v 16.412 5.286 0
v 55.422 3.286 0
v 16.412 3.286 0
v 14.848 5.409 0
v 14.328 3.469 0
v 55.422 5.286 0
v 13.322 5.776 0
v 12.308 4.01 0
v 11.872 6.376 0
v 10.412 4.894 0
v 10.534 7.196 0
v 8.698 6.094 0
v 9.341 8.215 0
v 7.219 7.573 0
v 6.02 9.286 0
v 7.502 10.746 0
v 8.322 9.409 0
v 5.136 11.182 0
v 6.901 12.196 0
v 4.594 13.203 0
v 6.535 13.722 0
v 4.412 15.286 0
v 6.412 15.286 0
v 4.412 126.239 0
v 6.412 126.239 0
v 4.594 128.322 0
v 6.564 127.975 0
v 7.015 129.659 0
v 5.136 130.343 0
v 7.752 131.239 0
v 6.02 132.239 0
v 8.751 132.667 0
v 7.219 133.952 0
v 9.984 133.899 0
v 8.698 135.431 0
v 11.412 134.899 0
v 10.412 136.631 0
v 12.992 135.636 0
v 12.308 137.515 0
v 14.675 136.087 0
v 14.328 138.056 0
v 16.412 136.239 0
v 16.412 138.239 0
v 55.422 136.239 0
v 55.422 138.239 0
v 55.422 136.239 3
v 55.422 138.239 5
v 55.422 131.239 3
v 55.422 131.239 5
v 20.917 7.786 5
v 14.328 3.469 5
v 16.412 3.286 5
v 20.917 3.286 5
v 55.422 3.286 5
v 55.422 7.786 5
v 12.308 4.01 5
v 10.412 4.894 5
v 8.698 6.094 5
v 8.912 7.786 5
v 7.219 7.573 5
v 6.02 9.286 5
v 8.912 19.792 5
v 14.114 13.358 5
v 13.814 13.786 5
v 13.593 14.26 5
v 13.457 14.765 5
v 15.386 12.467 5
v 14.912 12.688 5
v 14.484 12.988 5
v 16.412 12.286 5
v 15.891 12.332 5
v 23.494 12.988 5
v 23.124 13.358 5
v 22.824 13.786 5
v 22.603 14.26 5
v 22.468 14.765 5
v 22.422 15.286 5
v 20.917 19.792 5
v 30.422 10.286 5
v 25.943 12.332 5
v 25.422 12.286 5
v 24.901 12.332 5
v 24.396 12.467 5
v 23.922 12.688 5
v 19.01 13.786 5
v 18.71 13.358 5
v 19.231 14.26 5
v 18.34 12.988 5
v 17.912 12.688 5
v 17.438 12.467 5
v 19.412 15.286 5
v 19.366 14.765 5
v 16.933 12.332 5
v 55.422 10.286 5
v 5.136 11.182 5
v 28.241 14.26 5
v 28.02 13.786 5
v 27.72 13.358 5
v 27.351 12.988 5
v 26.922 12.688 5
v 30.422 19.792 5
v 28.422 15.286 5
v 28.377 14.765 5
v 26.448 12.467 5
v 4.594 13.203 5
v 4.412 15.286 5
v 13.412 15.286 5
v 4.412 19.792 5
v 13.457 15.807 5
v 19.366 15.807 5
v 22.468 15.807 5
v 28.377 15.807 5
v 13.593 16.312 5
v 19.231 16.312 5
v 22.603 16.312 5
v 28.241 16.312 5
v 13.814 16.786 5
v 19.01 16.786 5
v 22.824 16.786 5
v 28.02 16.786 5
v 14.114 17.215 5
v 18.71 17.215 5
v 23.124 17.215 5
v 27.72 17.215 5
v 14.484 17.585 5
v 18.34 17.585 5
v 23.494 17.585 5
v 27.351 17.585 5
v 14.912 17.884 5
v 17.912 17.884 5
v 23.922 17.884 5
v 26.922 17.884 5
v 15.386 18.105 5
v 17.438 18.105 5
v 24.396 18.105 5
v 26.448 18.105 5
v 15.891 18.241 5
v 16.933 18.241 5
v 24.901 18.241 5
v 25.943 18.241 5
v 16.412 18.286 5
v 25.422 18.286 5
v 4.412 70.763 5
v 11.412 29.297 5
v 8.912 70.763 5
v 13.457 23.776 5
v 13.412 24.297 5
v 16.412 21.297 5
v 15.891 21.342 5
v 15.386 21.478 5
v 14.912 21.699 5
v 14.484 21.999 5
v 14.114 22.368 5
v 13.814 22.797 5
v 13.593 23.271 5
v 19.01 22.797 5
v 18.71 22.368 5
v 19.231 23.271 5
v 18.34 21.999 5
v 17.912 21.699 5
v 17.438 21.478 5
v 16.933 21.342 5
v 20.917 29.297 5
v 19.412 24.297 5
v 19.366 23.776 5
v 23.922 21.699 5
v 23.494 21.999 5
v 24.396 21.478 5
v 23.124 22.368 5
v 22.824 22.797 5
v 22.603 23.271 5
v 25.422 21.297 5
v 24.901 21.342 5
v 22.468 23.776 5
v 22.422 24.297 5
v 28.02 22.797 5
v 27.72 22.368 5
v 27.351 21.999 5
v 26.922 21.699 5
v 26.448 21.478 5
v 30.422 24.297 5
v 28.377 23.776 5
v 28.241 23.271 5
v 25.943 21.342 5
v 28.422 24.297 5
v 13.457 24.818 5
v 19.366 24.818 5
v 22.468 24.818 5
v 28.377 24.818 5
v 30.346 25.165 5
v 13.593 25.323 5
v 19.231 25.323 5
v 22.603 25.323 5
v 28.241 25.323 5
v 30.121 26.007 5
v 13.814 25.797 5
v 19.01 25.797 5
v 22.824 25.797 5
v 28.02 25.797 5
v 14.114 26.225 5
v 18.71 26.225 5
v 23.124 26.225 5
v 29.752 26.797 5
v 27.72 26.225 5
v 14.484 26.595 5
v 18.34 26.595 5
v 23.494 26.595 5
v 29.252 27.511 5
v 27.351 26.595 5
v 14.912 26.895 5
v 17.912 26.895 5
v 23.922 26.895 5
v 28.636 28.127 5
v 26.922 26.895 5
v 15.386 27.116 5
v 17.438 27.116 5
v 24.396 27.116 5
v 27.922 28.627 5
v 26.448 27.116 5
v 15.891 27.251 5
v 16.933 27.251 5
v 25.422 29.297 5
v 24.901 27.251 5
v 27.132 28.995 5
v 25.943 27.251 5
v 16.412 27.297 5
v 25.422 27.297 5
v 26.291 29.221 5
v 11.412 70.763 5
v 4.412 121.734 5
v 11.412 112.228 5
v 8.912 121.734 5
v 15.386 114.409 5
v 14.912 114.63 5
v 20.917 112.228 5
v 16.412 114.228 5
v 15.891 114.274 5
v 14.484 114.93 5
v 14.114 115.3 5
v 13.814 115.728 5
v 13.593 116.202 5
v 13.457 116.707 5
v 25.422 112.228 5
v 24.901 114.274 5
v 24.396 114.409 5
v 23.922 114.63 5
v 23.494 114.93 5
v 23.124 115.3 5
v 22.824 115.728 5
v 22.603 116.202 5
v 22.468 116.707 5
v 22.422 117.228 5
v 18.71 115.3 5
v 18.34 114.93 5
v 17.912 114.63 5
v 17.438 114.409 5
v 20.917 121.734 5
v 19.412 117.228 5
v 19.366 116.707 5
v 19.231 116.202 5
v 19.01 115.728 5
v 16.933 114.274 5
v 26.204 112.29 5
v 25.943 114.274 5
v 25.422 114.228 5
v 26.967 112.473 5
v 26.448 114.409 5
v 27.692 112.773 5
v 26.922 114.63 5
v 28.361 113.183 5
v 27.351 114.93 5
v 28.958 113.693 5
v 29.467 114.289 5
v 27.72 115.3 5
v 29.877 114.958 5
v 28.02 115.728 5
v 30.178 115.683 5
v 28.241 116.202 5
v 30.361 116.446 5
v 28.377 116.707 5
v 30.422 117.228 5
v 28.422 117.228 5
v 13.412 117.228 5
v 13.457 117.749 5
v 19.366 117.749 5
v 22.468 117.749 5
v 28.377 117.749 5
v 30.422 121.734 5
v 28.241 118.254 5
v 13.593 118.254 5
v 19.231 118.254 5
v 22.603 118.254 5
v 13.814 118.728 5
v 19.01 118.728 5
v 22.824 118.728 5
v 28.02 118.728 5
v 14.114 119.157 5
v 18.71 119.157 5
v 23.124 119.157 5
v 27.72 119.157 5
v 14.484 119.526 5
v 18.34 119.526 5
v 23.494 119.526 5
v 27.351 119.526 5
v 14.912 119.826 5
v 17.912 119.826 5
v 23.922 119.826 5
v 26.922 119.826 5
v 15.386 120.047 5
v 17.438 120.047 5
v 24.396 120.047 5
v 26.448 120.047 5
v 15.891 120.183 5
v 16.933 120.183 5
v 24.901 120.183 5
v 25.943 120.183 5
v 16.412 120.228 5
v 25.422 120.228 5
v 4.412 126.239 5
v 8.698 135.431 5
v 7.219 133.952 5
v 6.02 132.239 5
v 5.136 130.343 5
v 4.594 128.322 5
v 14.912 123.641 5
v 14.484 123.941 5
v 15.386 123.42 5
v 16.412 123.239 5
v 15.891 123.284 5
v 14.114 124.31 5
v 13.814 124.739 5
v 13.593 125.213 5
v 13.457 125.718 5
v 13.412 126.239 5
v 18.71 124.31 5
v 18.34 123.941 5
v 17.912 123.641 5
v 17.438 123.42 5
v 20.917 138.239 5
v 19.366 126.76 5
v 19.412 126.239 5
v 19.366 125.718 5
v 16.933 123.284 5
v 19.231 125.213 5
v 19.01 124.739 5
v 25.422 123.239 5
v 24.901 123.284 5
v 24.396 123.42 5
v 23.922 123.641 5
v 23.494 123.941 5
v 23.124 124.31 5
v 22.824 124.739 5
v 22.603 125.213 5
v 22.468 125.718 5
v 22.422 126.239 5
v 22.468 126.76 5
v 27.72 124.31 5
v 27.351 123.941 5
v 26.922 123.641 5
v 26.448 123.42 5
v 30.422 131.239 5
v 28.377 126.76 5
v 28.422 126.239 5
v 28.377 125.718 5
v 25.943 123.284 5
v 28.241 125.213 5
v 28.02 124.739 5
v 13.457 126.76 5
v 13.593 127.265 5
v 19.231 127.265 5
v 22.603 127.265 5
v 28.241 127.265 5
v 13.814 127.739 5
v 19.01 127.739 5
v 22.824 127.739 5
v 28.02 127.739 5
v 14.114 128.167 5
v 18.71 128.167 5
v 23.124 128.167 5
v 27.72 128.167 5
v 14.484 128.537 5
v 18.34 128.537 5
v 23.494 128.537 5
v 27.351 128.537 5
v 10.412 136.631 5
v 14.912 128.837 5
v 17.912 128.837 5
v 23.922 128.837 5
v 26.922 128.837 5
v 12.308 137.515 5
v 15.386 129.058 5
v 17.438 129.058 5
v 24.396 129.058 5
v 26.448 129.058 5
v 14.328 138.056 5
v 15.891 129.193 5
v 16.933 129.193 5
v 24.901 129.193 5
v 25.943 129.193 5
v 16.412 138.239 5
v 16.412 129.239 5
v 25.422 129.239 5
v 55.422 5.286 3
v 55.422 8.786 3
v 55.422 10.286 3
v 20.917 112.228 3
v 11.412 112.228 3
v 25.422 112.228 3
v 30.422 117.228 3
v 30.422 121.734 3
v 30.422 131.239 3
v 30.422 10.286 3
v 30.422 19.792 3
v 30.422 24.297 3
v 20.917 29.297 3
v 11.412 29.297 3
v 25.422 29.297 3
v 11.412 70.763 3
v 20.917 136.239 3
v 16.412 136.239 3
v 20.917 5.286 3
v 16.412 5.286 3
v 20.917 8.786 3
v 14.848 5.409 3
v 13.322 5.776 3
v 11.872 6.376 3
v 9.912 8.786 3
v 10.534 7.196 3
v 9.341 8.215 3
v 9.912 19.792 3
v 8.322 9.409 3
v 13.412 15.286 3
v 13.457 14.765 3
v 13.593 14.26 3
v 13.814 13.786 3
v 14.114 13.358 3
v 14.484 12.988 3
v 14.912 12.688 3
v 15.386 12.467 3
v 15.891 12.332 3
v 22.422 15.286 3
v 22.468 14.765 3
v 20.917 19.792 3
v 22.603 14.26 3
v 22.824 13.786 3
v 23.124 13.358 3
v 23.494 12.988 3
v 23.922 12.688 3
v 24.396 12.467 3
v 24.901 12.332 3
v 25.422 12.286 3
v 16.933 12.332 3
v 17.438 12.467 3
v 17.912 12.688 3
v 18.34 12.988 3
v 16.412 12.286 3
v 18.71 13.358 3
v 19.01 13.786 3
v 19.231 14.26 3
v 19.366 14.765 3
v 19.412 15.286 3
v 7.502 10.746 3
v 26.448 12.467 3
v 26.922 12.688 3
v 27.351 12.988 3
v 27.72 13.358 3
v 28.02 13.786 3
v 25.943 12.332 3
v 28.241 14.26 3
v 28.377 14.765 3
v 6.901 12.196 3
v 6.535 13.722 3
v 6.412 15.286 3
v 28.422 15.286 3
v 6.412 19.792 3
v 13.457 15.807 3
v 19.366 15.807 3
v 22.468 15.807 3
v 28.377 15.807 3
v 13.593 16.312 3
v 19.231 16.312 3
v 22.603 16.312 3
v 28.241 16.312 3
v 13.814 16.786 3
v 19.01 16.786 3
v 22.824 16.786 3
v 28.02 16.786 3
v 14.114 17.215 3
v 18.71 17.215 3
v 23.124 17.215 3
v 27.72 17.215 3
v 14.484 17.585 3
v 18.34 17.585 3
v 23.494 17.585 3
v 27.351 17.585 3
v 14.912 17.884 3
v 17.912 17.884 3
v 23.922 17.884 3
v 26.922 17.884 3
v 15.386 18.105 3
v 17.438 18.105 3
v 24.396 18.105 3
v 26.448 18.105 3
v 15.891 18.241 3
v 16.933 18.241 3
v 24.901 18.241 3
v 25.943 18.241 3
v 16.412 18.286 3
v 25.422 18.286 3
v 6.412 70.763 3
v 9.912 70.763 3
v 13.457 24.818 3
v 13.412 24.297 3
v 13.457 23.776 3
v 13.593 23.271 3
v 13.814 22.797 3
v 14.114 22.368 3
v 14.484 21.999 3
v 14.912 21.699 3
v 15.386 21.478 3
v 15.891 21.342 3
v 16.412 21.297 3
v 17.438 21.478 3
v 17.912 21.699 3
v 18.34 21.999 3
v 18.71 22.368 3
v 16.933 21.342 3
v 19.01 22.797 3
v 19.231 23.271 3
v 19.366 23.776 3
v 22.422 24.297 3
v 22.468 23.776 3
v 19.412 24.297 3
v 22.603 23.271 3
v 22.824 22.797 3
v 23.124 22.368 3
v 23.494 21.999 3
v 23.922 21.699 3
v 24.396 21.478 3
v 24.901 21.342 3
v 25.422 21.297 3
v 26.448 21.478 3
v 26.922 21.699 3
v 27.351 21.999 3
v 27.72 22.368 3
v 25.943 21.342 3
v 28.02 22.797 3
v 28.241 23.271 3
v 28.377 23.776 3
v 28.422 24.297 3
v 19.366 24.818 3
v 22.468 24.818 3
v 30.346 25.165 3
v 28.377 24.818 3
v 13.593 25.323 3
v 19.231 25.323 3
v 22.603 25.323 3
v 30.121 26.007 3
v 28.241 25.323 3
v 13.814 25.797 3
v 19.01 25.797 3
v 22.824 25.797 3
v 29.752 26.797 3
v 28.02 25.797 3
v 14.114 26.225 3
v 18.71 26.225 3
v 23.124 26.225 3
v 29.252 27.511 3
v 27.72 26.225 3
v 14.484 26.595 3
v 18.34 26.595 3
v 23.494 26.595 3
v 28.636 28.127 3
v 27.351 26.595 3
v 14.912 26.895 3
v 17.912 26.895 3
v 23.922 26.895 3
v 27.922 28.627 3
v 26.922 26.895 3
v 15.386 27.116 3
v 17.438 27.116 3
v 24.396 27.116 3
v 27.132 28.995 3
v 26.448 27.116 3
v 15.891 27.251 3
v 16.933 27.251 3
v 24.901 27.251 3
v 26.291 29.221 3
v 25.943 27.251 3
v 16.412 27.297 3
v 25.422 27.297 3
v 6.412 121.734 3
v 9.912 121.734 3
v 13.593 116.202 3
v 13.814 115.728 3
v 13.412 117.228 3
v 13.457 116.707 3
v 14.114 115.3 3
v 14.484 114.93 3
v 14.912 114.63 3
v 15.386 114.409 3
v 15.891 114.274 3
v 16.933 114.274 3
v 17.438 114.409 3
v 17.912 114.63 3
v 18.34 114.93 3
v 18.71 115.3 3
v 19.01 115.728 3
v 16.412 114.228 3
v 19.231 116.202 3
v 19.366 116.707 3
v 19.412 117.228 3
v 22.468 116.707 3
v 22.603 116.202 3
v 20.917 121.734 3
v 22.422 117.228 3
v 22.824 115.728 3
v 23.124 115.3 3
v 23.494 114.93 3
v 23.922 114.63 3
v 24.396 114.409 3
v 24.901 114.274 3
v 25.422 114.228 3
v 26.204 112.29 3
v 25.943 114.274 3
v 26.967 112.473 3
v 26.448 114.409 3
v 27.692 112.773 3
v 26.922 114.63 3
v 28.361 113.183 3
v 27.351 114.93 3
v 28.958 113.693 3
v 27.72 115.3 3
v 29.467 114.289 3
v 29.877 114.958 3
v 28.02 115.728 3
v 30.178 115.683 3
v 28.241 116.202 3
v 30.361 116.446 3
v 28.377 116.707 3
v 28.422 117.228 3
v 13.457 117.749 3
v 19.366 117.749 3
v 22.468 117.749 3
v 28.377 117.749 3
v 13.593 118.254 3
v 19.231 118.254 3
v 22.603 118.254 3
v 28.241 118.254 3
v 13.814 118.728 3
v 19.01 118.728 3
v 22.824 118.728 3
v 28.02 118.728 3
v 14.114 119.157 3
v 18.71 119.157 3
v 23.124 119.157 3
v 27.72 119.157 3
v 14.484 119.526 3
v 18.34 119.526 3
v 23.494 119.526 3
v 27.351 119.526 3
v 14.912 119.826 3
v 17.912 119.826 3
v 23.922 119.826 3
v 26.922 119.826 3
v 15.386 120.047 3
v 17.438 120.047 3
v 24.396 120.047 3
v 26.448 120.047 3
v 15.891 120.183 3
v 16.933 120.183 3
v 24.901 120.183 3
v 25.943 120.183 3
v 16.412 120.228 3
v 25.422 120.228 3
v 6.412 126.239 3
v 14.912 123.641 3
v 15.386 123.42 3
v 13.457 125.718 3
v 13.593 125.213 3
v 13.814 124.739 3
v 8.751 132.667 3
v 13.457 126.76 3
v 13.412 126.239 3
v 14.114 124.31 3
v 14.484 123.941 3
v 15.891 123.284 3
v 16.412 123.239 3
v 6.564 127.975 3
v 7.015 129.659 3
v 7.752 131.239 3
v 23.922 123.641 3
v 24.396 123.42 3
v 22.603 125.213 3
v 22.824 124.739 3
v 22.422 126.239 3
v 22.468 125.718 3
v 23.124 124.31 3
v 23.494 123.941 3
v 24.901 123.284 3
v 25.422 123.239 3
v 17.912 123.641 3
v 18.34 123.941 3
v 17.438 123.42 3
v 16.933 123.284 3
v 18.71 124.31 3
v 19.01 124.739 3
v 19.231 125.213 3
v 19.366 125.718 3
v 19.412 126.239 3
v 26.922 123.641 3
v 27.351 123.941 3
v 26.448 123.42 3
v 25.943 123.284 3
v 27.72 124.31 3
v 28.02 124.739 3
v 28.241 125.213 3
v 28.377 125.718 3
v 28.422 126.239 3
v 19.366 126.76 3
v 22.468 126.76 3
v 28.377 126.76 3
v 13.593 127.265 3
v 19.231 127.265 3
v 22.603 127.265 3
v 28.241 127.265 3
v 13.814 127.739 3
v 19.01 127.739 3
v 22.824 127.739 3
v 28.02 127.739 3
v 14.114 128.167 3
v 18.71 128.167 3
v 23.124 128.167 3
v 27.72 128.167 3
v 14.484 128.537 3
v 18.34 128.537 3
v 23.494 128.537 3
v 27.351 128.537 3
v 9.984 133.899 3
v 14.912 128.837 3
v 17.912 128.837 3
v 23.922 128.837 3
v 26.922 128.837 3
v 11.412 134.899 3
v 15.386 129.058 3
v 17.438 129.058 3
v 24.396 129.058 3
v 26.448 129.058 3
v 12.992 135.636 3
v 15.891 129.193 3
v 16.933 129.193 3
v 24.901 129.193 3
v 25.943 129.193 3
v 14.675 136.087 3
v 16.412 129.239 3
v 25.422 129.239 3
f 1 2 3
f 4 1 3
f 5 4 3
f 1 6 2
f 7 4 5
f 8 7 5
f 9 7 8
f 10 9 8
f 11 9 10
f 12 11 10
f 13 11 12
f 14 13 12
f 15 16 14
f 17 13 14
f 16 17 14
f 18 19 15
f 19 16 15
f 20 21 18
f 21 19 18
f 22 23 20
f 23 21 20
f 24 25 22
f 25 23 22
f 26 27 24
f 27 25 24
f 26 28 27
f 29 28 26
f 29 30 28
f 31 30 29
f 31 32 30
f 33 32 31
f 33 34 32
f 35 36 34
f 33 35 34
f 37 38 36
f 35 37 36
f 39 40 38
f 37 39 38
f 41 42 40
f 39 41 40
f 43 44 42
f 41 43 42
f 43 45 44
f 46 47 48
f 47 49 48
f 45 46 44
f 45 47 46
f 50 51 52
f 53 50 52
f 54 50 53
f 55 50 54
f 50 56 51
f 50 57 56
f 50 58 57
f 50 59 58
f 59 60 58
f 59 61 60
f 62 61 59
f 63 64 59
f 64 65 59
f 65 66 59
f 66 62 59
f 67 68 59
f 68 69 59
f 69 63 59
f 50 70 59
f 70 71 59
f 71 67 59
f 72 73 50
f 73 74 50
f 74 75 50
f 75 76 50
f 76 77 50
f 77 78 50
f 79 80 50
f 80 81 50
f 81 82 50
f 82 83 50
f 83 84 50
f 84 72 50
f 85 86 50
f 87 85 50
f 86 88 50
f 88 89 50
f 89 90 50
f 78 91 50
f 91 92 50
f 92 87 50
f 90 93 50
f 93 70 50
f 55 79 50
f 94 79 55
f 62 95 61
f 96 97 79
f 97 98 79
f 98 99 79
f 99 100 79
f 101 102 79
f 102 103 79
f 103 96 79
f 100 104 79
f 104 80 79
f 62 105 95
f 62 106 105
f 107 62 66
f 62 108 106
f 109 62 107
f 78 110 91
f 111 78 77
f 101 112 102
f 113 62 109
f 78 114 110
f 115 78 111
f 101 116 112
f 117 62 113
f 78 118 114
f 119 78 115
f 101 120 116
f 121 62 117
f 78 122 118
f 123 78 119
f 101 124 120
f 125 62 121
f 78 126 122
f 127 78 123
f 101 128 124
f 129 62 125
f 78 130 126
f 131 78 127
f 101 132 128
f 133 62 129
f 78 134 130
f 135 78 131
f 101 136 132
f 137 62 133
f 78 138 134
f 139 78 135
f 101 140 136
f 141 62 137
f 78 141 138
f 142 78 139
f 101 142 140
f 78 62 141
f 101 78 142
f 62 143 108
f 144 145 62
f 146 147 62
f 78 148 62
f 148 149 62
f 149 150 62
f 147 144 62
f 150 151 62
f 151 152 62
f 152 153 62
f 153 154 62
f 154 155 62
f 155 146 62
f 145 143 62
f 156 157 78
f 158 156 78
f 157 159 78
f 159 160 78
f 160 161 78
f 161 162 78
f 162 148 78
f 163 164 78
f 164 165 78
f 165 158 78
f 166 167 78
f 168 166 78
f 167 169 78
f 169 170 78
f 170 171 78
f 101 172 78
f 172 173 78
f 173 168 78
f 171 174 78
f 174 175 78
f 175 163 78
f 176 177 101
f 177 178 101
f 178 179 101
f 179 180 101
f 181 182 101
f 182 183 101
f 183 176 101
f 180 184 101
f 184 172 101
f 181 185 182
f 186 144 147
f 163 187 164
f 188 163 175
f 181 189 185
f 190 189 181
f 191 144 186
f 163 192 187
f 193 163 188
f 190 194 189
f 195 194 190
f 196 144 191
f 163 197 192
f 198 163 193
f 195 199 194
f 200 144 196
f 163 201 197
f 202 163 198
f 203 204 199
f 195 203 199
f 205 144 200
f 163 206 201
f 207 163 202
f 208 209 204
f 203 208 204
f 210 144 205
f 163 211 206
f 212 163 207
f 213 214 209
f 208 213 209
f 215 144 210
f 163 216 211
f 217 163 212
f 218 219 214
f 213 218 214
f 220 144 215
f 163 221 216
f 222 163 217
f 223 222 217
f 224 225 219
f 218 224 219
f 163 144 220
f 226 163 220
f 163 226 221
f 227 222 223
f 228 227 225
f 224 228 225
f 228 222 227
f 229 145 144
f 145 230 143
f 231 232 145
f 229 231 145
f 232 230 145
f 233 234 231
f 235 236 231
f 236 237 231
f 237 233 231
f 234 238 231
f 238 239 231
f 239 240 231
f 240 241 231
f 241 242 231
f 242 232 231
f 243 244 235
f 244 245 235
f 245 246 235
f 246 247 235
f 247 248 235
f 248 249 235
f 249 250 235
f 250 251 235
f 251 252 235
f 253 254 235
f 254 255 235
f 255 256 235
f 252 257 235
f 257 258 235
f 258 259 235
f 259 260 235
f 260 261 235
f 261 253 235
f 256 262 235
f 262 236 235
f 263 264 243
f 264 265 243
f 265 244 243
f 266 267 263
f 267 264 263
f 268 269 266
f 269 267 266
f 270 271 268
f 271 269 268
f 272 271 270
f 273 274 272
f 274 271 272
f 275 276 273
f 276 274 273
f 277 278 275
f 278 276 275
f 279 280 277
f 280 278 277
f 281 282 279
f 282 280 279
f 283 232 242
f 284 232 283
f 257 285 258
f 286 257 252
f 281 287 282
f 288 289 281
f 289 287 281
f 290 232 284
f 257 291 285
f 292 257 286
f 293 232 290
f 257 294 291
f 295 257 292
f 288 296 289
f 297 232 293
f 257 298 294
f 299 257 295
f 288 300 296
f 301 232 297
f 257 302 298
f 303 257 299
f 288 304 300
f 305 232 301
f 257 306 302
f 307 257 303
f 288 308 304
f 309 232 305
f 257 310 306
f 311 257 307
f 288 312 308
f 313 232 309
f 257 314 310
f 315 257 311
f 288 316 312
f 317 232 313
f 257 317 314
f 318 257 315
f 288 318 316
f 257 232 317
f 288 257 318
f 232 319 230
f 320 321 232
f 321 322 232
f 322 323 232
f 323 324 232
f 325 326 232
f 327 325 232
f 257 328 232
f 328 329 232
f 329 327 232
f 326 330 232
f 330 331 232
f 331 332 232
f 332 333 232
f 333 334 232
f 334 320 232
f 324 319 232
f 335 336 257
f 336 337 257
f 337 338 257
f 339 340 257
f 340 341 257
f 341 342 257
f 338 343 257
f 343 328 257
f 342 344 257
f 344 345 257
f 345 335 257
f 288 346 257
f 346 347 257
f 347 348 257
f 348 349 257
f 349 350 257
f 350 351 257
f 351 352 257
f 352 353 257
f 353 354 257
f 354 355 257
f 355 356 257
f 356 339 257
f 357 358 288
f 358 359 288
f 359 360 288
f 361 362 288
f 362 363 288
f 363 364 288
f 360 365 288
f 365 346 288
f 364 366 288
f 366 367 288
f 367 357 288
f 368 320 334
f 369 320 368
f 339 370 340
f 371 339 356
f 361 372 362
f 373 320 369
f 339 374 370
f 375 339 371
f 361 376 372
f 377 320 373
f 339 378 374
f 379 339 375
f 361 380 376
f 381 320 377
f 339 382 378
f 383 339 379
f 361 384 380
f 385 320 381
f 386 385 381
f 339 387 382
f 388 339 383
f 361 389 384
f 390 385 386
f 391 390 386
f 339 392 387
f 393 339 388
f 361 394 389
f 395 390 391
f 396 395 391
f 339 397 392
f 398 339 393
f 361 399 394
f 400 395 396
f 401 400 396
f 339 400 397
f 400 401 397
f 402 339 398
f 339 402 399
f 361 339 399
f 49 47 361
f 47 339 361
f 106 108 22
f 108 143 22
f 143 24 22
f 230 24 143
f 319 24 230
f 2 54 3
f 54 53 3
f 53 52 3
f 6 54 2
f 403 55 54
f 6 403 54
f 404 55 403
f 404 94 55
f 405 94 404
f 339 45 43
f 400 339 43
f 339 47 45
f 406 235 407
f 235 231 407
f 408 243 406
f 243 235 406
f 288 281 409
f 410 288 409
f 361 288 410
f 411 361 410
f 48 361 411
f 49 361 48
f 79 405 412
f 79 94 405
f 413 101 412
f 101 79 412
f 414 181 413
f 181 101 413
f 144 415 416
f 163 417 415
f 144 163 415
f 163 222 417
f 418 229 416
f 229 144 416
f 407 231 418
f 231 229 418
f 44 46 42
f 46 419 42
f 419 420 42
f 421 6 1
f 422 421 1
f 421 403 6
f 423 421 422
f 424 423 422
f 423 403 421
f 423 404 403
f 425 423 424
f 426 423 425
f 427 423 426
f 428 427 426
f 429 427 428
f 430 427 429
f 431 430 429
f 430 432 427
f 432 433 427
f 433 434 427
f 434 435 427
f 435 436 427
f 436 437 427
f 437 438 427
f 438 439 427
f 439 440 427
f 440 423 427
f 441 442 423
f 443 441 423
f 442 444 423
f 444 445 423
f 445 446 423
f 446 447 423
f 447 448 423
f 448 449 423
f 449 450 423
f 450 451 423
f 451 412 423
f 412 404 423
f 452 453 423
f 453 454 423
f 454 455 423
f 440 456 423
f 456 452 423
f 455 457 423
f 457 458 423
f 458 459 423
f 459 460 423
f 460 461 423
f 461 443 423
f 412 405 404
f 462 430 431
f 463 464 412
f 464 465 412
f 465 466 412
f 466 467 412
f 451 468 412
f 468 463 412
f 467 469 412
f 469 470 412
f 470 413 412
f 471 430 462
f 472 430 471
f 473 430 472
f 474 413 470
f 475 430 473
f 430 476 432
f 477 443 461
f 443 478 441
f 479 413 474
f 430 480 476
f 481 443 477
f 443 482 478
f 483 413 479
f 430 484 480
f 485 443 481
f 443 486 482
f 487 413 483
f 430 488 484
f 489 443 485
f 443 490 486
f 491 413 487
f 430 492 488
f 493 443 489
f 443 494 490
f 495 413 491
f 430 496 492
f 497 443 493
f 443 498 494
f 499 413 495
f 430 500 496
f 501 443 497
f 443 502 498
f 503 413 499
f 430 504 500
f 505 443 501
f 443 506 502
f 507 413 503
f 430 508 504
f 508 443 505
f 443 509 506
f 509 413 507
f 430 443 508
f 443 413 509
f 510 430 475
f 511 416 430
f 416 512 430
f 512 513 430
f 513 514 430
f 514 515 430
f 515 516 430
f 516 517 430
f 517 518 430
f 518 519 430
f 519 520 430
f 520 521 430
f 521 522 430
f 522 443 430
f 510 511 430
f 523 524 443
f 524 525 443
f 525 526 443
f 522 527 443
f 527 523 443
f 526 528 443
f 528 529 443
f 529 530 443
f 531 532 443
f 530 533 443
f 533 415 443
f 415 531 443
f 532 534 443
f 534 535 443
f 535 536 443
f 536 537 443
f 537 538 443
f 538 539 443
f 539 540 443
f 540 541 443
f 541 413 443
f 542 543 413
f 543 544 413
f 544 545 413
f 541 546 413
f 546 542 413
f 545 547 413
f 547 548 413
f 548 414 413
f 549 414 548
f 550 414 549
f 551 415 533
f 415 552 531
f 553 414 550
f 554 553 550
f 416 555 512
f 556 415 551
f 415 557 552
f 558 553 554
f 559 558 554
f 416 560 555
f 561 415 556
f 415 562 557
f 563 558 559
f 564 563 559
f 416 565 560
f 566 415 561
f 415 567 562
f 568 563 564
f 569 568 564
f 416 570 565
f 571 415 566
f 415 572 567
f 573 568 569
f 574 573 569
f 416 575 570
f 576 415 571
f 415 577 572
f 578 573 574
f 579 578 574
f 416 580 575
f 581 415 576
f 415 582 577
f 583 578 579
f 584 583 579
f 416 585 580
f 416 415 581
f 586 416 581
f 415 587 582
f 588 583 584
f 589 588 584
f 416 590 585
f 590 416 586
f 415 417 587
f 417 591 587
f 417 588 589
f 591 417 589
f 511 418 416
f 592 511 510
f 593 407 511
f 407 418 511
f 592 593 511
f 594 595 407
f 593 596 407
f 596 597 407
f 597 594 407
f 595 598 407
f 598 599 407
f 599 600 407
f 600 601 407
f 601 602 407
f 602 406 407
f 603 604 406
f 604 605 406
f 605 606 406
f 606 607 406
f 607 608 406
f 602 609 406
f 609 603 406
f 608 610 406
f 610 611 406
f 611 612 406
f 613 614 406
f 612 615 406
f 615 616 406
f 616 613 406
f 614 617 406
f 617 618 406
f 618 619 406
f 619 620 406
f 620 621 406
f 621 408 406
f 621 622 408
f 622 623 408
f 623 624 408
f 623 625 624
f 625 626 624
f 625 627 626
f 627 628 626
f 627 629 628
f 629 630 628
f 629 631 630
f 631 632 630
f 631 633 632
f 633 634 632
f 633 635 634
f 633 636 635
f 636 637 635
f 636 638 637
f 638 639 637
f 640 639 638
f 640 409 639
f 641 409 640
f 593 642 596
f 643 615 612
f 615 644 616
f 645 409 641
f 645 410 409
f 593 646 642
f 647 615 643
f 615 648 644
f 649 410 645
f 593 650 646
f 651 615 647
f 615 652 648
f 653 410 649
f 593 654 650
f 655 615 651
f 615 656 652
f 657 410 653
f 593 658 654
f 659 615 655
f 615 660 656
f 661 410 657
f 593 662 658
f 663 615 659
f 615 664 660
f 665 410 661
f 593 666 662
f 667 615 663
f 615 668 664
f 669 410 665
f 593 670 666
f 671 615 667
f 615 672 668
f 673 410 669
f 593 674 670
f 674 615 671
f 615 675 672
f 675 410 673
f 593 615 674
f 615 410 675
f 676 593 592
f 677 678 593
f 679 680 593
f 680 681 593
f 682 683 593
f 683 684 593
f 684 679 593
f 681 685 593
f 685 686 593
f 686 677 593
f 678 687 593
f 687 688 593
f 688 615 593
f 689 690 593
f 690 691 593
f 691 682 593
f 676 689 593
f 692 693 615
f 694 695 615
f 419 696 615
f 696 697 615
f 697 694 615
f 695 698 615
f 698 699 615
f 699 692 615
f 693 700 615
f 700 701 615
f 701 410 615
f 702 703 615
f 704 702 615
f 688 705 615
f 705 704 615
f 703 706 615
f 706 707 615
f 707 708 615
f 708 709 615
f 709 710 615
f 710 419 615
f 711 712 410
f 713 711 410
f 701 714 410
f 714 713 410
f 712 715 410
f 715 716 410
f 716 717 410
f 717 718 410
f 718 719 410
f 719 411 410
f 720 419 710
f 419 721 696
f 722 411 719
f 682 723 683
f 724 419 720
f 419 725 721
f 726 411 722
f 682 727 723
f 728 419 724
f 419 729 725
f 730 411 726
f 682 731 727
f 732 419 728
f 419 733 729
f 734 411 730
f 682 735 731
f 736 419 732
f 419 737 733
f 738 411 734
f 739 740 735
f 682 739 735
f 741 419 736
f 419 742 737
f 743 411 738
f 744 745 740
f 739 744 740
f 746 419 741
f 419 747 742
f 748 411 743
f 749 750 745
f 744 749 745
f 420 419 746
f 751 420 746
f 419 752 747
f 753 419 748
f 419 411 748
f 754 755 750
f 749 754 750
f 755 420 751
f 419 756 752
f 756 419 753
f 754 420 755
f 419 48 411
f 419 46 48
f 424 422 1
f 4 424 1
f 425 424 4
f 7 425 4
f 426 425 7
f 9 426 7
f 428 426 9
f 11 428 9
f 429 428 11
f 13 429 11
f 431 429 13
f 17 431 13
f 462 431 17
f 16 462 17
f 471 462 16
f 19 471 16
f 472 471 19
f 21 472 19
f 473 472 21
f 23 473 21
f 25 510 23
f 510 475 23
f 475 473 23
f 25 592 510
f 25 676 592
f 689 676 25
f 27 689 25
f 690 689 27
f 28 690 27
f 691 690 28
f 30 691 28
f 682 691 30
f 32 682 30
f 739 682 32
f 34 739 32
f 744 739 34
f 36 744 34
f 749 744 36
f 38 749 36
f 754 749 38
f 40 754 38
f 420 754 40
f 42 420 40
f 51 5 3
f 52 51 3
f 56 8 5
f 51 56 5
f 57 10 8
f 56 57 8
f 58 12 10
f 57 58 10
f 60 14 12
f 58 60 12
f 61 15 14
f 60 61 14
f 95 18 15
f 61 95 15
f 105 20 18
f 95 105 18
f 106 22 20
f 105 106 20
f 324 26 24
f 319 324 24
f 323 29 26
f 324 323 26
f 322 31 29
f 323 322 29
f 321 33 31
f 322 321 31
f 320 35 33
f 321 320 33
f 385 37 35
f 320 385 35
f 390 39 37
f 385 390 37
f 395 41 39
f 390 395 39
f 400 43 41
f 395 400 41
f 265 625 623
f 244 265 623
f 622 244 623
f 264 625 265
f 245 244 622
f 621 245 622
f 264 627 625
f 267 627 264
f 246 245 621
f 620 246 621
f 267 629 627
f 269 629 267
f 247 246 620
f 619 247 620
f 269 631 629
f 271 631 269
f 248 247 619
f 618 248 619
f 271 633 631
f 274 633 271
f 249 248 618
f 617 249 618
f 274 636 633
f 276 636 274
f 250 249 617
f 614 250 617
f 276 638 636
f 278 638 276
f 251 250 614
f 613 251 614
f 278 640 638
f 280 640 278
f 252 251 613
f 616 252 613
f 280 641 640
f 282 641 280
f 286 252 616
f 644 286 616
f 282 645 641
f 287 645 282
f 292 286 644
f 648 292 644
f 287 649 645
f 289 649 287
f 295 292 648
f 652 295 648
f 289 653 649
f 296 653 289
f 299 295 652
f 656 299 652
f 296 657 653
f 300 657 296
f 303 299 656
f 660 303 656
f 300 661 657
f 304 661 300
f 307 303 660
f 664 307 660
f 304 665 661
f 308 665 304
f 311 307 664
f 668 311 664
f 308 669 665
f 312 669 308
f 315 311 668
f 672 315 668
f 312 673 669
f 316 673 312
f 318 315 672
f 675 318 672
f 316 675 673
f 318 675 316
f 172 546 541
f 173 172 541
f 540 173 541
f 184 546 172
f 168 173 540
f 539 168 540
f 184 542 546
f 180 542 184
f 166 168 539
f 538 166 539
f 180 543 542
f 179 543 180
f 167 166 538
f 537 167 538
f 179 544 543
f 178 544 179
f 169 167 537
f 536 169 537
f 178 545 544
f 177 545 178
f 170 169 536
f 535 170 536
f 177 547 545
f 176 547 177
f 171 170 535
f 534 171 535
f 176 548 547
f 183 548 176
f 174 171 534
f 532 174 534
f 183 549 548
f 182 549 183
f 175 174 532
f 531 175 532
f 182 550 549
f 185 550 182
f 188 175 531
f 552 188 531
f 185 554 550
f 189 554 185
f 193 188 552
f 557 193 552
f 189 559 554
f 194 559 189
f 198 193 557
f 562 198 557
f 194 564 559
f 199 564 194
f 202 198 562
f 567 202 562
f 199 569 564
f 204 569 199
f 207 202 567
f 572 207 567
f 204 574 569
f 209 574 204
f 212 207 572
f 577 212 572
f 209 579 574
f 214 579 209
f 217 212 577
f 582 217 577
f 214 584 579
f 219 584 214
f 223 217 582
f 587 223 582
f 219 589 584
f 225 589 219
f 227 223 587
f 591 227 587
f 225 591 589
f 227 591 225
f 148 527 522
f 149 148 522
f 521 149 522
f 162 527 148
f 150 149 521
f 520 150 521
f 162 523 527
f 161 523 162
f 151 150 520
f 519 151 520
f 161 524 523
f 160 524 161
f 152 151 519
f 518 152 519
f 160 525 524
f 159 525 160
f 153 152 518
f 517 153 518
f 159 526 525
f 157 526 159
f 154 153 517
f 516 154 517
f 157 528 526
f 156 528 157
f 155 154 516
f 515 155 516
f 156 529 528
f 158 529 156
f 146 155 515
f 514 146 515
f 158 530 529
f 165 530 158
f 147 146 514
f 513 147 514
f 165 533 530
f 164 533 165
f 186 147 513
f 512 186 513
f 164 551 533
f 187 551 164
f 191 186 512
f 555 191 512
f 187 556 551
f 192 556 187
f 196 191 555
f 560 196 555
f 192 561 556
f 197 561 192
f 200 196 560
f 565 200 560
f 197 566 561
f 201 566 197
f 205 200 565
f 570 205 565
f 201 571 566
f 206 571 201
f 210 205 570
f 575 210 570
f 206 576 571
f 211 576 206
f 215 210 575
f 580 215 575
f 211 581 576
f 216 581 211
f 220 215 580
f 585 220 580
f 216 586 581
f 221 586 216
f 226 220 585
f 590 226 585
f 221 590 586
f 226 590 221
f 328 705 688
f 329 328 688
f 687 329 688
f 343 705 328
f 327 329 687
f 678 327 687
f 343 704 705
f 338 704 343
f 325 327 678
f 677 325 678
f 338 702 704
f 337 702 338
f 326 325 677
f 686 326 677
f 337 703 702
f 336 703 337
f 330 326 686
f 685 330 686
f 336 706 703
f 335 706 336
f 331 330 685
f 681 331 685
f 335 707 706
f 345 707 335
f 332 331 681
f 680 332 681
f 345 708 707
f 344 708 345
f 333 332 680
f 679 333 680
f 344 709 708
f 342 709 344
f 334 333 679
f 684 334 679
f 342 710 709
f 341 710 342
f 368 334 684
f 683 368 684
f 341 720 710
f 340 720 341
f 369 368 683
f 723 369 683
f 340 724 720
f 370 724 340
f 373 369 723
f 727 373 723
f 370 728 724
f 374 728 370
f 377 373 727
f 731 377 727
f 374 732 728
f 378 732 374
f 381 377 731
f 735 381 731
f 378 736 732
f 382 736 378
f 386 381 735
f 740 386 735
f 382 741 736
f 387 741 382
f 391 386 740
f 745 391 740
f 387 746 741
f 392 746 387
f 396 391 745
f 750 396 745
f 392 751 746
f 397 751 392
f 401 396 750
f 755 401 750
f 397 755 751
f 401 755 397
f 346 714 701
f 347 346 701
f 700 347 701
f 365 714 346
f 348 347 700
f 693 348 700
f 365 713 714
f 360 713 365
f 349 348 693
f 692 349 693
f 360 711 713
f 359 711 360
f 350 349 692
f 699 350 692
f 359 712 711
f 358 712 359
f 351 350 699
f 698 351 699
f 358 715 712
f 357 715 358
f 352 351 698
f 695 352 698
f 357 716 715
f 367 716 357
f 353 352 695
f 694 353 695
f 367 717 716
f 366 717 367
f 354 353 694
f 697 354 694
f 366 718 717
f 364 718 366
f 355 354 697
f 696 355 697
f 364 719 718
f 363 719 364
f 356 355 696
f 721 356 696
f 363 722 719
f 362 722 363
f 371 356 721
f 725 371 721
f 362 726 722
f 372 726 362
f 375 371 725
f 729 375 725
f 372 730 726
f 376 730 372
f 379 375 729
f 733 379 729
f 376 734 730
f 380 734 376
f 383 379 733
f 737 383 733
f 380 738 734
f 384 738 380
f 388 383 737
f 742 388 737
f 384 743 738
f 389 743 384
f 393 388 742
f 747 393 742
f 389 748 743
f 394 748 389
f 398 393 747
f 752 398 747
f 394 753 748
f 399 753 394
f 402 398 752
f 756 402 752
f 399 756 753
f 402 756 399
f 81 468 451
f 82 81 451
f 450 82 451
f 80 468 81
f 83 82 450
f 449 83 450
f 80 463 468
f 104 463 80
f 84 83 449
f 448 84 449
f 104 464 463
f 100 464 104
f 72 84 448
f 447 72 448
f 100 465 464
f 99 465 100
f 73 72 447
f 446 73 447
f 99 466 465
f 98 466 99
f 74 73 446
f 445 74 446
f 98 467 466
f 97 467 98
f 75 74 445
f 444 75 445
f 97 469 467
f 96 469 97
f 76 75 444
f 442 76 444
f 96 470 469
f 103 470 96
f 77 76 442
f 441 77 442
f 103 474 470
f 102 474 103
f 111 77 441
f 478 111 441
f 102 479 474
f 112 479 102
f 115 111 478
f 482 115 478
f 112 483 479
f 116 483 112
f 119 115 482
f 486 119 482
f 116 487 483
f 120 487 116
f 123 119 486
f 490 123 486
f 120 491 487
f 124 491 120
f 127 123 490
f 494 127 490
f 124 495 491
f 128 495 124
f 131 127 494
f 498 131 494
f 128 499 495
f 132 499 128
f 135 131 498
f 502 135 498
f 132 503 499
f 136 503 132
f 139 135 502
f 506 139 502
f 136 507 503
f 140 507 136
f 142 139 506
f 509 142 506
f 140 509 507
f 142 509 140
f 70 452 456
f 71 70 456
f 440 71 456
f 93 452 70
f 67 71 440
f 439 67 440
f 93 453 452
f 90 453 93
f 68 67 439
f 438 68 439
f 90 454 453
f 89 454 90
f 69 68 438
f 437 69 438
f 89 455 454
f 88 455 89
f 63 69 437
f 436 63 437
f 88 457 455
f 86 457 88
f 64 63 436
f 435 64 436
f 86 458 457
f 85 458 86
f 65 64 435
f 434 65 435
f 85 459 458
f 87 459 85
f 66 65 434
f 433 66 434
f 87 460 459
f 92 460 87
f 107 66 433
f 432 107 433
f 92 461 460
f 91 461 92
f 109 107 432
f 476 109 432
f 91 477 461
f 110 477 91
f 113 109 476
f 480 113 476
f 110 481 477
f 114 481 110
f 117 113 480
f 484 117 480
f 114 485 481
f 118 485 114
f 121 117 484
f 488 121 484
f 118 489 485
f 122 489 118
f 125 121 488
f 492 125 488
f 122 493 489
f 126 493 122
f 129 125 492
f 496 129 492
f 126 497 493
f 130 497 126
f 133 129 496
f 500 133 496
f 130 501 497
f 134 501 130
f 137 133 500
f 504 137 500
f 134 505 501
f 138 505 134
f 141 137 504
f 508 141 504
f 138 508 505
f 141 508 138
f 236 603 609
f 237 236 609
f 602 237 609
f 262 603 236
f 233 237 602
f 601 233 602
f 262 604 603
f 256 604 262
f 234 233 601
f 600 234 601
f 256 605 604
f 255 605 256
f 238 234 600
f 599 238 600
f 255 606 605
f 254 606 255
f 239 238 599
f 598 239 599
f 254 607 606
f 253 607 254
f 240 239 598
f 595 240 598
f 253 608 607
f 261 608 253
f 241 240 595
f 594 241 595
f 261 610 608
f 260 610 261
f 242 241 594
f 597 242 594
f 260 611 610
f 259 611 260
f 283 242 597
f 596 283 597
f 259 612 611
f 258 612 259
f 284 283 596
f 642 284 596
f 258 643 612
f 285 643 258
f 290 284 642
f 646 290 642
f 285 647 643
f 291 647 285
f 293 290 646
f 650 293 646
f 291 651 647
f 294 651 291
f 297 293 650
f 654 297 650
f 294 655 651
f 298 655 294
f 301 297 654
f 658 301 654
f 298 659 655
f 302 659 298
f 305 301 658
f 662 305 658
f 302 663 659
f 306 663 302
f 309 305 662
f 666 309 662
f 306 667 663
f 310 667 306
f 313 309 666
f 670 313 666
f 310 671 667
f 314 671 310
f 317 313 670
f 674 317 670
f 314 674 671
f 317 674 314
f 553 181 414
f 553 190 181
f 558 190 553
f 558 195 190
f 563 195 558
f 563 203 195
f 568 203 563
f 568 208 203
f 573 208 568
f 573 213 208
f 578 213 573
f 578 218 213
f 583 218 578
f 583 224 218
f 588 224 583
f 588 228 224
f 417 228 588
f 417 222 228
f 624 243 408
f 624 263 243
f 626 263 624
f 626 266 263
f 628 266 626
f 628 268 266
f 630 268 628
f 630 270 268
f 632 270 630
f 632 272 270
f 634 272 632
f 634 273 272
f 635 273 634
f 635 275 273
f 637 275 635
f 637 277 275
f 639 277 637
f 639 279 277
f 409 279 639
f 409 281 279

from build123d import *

# Parameters (mm, degrees)
SKETCH24_W              = 19.01040764
SKETCH24_H              = 82.93150469
SKETCH24_W_2            = 50
SKETCH24_H_2            = 120.95231997
BOSS_EXTRUDE1_DEPTH     = 2
SKETCH25_W              = 51.01040764
SKETCH25_H              = 134.95231997
BOSS_EXTRUDE2_DEPTH     = 5
CUT_EXTRUDE2_DEPTH      = 303.633154318
CUT_EXTRUDE2_DEPTH_BACK = 303.633154318
SKETCH24_3_W            = 19.01040764
SKETCH24_3_H            = 82.93150469
SKETCH24_3_W_2          = 50
SKETCH24_3_H_2          = 120.95231997
CUT_EXTRUDE3_DEPTH      = 3
FILLET1_R               = 12
SKETCH28_R              = 3
CUT_EXTRUDE4_DEPTH      = 150.018673002
FILLET2_R               = 5


with BuildPart() as part:
    # Sketch24 → Boss-Extrude1 (new body)
    with BuildSketch(Plane.XY):
        with Locations((20.91706823, 70.762534541)):
            Rectangle(SKETCH24_W, SKETCH24_H)
        with Locations((55.42227205, 70.762534541)):
            Rectangle(SKETCH24_W_2, SKETCH24_H_2)
        Polygon((250.158478802, 10.286374556), (250.158478802, 29.296782196), (250.158478802, 112.228286886), (250.158478802, 131.238694526), (200.158478802, 131.238694526), (200.158478802, 10.286374556), align=None)
        with Locations((259.663682622, 70.762534541)):
            Rectangle(SKETCH24_W, SKETCH24_H)
    extrude(amount=-BOSS_EXTRUDE1_DEPTH)

    # Sketch25 → Boss-Extrude2 (add)
    with BuildSketch(Plane.XY):
        with Locations((29.91706823, 70.762534541)):
            Rectangle(SKETCH25_W, SKETCH25_H)
    extrude(amount=BOSS_EXTRUDE2_DEPTH)

    # Sketch24<3> → Cut-Extrude2 (cut, two sides: drawn at the far end of the back side and taken through both)
    with BuildSketch(Plane.XY.offset(-CUT_EXTRUDE2_DEPTH_BACK)):
        with Locations((20.91706823, 70.762534541)):
            Rectangle(SKETCH24_3_W, SKETCH24_3_H)
        with Locations((55.42227205, 70.762534541)):
            Rectangle(SKETCH24_3_W_2, SKETCH24_3_H_2)
        Polygon((250.158478802, 10.286374556), (250.158478802, 29.296782196), (250.158478802, 112.228286886), (250.158478802, 131.238694526), (200.158478802, 131.238694526), (200.158478802, 10.286374556), align=None)
        with Locations((259.663682622, 70.762534541)):
            Rectangle(SKETCH24_3_W, SKETCH24_3_H)
    extrude(amount=CUT_EXTRUDE2_DEPTH + CUT_EXTRUDE2_DEPTH_BACK, mode=Mode.SUBTRACT)

    # Sketch2 → Cut-Extrude3 (cut)
    with BuildSketch(Plane.XY):
        with BuildLine():
            Line((16.41186441, 136.238694526), (264.168886442, 136.238694526))
            ThreePointArc((264.168886442, 136.238694526), (271.239954254, 133.309762338), (274.168886442, 126.238694526))
            Line((274.168886442, 126.238694526), (274.168886442, 15.286374556))
            ThreePointArc((274.168886442, 15.286374556), (271.239954254, 8.215306744), (264.168886442, 5.286374556))
            Line((264.168886442, 5.286374556), (16.41186441, 5.286374556))
            ThreePointArc((16.41186441, 5.286374556), (9.340796598, 8.215306744), (6.41186441, 15.286374556))
            Line((6.41186441, 15.286374556), (6.41186441, 126.238694526))
            ThreePointArc((6.41186441, 126.238694526), (9.340796598, 133.309762338), (16.41186441, 136.238694526))
        make_face()
    extrude(amount=CUT_EXTRUDE3_DEPTH, mode=Mode.SUBTRACT)

    # Fillet1
    fillet1_edges = [part.edges().sort_by_distance(p)[0] for p in [
        (4.41186441, 138.238694526, 2.5),
        (4.41186441, 3.286374556, 2.5),
    ]]
    fillet(fillet1_edges, radius=FILLET1_R)

    # Sketch28 → Cut-Extrude4 (cut, through all)
    with BuildSketch(Plane.XY):
        with Locations((25.42227205, 117.228286886)):
            Circle(SKETCH28_R)
        with Locations((16.41186441, 15.286374556)):
            Circle(SKETCH28_R)
        with Locations((16.41186441, 117.228286886)):
            Circle(SKETCH28_R)
        with Locations((25.42227205, 15.286374556)):
            Circle(SKETCH28_R)
        with Locations((25.42227205, 24.296782196)):
            Circle(SKETCH28_R)
        with Locations((16.41186441, 24.296782196)):
            Circle(SKETCH28_R)
        with Locations((25.42227205, 126.238694526)):
            Circle(SKETCH28_R)
        with Locations((16.41186441, 126.238694526)):
            Circle(SKETCH28_R)
    extrude(amount=CUT_EXTRUDE4_DEPTH, mode=Mode.SUBTRACT)

    # Fillet2
    fillet2_edges = [part.edges().sort_by_distance(p)[0] for p in [
        (30.42227205, 29.296782196, 4),
        (30.42227205, 112.228286886, 4),
    ]]
    fillet(fillet2_edges, radius=FILLET2_R)


solid = part.part
